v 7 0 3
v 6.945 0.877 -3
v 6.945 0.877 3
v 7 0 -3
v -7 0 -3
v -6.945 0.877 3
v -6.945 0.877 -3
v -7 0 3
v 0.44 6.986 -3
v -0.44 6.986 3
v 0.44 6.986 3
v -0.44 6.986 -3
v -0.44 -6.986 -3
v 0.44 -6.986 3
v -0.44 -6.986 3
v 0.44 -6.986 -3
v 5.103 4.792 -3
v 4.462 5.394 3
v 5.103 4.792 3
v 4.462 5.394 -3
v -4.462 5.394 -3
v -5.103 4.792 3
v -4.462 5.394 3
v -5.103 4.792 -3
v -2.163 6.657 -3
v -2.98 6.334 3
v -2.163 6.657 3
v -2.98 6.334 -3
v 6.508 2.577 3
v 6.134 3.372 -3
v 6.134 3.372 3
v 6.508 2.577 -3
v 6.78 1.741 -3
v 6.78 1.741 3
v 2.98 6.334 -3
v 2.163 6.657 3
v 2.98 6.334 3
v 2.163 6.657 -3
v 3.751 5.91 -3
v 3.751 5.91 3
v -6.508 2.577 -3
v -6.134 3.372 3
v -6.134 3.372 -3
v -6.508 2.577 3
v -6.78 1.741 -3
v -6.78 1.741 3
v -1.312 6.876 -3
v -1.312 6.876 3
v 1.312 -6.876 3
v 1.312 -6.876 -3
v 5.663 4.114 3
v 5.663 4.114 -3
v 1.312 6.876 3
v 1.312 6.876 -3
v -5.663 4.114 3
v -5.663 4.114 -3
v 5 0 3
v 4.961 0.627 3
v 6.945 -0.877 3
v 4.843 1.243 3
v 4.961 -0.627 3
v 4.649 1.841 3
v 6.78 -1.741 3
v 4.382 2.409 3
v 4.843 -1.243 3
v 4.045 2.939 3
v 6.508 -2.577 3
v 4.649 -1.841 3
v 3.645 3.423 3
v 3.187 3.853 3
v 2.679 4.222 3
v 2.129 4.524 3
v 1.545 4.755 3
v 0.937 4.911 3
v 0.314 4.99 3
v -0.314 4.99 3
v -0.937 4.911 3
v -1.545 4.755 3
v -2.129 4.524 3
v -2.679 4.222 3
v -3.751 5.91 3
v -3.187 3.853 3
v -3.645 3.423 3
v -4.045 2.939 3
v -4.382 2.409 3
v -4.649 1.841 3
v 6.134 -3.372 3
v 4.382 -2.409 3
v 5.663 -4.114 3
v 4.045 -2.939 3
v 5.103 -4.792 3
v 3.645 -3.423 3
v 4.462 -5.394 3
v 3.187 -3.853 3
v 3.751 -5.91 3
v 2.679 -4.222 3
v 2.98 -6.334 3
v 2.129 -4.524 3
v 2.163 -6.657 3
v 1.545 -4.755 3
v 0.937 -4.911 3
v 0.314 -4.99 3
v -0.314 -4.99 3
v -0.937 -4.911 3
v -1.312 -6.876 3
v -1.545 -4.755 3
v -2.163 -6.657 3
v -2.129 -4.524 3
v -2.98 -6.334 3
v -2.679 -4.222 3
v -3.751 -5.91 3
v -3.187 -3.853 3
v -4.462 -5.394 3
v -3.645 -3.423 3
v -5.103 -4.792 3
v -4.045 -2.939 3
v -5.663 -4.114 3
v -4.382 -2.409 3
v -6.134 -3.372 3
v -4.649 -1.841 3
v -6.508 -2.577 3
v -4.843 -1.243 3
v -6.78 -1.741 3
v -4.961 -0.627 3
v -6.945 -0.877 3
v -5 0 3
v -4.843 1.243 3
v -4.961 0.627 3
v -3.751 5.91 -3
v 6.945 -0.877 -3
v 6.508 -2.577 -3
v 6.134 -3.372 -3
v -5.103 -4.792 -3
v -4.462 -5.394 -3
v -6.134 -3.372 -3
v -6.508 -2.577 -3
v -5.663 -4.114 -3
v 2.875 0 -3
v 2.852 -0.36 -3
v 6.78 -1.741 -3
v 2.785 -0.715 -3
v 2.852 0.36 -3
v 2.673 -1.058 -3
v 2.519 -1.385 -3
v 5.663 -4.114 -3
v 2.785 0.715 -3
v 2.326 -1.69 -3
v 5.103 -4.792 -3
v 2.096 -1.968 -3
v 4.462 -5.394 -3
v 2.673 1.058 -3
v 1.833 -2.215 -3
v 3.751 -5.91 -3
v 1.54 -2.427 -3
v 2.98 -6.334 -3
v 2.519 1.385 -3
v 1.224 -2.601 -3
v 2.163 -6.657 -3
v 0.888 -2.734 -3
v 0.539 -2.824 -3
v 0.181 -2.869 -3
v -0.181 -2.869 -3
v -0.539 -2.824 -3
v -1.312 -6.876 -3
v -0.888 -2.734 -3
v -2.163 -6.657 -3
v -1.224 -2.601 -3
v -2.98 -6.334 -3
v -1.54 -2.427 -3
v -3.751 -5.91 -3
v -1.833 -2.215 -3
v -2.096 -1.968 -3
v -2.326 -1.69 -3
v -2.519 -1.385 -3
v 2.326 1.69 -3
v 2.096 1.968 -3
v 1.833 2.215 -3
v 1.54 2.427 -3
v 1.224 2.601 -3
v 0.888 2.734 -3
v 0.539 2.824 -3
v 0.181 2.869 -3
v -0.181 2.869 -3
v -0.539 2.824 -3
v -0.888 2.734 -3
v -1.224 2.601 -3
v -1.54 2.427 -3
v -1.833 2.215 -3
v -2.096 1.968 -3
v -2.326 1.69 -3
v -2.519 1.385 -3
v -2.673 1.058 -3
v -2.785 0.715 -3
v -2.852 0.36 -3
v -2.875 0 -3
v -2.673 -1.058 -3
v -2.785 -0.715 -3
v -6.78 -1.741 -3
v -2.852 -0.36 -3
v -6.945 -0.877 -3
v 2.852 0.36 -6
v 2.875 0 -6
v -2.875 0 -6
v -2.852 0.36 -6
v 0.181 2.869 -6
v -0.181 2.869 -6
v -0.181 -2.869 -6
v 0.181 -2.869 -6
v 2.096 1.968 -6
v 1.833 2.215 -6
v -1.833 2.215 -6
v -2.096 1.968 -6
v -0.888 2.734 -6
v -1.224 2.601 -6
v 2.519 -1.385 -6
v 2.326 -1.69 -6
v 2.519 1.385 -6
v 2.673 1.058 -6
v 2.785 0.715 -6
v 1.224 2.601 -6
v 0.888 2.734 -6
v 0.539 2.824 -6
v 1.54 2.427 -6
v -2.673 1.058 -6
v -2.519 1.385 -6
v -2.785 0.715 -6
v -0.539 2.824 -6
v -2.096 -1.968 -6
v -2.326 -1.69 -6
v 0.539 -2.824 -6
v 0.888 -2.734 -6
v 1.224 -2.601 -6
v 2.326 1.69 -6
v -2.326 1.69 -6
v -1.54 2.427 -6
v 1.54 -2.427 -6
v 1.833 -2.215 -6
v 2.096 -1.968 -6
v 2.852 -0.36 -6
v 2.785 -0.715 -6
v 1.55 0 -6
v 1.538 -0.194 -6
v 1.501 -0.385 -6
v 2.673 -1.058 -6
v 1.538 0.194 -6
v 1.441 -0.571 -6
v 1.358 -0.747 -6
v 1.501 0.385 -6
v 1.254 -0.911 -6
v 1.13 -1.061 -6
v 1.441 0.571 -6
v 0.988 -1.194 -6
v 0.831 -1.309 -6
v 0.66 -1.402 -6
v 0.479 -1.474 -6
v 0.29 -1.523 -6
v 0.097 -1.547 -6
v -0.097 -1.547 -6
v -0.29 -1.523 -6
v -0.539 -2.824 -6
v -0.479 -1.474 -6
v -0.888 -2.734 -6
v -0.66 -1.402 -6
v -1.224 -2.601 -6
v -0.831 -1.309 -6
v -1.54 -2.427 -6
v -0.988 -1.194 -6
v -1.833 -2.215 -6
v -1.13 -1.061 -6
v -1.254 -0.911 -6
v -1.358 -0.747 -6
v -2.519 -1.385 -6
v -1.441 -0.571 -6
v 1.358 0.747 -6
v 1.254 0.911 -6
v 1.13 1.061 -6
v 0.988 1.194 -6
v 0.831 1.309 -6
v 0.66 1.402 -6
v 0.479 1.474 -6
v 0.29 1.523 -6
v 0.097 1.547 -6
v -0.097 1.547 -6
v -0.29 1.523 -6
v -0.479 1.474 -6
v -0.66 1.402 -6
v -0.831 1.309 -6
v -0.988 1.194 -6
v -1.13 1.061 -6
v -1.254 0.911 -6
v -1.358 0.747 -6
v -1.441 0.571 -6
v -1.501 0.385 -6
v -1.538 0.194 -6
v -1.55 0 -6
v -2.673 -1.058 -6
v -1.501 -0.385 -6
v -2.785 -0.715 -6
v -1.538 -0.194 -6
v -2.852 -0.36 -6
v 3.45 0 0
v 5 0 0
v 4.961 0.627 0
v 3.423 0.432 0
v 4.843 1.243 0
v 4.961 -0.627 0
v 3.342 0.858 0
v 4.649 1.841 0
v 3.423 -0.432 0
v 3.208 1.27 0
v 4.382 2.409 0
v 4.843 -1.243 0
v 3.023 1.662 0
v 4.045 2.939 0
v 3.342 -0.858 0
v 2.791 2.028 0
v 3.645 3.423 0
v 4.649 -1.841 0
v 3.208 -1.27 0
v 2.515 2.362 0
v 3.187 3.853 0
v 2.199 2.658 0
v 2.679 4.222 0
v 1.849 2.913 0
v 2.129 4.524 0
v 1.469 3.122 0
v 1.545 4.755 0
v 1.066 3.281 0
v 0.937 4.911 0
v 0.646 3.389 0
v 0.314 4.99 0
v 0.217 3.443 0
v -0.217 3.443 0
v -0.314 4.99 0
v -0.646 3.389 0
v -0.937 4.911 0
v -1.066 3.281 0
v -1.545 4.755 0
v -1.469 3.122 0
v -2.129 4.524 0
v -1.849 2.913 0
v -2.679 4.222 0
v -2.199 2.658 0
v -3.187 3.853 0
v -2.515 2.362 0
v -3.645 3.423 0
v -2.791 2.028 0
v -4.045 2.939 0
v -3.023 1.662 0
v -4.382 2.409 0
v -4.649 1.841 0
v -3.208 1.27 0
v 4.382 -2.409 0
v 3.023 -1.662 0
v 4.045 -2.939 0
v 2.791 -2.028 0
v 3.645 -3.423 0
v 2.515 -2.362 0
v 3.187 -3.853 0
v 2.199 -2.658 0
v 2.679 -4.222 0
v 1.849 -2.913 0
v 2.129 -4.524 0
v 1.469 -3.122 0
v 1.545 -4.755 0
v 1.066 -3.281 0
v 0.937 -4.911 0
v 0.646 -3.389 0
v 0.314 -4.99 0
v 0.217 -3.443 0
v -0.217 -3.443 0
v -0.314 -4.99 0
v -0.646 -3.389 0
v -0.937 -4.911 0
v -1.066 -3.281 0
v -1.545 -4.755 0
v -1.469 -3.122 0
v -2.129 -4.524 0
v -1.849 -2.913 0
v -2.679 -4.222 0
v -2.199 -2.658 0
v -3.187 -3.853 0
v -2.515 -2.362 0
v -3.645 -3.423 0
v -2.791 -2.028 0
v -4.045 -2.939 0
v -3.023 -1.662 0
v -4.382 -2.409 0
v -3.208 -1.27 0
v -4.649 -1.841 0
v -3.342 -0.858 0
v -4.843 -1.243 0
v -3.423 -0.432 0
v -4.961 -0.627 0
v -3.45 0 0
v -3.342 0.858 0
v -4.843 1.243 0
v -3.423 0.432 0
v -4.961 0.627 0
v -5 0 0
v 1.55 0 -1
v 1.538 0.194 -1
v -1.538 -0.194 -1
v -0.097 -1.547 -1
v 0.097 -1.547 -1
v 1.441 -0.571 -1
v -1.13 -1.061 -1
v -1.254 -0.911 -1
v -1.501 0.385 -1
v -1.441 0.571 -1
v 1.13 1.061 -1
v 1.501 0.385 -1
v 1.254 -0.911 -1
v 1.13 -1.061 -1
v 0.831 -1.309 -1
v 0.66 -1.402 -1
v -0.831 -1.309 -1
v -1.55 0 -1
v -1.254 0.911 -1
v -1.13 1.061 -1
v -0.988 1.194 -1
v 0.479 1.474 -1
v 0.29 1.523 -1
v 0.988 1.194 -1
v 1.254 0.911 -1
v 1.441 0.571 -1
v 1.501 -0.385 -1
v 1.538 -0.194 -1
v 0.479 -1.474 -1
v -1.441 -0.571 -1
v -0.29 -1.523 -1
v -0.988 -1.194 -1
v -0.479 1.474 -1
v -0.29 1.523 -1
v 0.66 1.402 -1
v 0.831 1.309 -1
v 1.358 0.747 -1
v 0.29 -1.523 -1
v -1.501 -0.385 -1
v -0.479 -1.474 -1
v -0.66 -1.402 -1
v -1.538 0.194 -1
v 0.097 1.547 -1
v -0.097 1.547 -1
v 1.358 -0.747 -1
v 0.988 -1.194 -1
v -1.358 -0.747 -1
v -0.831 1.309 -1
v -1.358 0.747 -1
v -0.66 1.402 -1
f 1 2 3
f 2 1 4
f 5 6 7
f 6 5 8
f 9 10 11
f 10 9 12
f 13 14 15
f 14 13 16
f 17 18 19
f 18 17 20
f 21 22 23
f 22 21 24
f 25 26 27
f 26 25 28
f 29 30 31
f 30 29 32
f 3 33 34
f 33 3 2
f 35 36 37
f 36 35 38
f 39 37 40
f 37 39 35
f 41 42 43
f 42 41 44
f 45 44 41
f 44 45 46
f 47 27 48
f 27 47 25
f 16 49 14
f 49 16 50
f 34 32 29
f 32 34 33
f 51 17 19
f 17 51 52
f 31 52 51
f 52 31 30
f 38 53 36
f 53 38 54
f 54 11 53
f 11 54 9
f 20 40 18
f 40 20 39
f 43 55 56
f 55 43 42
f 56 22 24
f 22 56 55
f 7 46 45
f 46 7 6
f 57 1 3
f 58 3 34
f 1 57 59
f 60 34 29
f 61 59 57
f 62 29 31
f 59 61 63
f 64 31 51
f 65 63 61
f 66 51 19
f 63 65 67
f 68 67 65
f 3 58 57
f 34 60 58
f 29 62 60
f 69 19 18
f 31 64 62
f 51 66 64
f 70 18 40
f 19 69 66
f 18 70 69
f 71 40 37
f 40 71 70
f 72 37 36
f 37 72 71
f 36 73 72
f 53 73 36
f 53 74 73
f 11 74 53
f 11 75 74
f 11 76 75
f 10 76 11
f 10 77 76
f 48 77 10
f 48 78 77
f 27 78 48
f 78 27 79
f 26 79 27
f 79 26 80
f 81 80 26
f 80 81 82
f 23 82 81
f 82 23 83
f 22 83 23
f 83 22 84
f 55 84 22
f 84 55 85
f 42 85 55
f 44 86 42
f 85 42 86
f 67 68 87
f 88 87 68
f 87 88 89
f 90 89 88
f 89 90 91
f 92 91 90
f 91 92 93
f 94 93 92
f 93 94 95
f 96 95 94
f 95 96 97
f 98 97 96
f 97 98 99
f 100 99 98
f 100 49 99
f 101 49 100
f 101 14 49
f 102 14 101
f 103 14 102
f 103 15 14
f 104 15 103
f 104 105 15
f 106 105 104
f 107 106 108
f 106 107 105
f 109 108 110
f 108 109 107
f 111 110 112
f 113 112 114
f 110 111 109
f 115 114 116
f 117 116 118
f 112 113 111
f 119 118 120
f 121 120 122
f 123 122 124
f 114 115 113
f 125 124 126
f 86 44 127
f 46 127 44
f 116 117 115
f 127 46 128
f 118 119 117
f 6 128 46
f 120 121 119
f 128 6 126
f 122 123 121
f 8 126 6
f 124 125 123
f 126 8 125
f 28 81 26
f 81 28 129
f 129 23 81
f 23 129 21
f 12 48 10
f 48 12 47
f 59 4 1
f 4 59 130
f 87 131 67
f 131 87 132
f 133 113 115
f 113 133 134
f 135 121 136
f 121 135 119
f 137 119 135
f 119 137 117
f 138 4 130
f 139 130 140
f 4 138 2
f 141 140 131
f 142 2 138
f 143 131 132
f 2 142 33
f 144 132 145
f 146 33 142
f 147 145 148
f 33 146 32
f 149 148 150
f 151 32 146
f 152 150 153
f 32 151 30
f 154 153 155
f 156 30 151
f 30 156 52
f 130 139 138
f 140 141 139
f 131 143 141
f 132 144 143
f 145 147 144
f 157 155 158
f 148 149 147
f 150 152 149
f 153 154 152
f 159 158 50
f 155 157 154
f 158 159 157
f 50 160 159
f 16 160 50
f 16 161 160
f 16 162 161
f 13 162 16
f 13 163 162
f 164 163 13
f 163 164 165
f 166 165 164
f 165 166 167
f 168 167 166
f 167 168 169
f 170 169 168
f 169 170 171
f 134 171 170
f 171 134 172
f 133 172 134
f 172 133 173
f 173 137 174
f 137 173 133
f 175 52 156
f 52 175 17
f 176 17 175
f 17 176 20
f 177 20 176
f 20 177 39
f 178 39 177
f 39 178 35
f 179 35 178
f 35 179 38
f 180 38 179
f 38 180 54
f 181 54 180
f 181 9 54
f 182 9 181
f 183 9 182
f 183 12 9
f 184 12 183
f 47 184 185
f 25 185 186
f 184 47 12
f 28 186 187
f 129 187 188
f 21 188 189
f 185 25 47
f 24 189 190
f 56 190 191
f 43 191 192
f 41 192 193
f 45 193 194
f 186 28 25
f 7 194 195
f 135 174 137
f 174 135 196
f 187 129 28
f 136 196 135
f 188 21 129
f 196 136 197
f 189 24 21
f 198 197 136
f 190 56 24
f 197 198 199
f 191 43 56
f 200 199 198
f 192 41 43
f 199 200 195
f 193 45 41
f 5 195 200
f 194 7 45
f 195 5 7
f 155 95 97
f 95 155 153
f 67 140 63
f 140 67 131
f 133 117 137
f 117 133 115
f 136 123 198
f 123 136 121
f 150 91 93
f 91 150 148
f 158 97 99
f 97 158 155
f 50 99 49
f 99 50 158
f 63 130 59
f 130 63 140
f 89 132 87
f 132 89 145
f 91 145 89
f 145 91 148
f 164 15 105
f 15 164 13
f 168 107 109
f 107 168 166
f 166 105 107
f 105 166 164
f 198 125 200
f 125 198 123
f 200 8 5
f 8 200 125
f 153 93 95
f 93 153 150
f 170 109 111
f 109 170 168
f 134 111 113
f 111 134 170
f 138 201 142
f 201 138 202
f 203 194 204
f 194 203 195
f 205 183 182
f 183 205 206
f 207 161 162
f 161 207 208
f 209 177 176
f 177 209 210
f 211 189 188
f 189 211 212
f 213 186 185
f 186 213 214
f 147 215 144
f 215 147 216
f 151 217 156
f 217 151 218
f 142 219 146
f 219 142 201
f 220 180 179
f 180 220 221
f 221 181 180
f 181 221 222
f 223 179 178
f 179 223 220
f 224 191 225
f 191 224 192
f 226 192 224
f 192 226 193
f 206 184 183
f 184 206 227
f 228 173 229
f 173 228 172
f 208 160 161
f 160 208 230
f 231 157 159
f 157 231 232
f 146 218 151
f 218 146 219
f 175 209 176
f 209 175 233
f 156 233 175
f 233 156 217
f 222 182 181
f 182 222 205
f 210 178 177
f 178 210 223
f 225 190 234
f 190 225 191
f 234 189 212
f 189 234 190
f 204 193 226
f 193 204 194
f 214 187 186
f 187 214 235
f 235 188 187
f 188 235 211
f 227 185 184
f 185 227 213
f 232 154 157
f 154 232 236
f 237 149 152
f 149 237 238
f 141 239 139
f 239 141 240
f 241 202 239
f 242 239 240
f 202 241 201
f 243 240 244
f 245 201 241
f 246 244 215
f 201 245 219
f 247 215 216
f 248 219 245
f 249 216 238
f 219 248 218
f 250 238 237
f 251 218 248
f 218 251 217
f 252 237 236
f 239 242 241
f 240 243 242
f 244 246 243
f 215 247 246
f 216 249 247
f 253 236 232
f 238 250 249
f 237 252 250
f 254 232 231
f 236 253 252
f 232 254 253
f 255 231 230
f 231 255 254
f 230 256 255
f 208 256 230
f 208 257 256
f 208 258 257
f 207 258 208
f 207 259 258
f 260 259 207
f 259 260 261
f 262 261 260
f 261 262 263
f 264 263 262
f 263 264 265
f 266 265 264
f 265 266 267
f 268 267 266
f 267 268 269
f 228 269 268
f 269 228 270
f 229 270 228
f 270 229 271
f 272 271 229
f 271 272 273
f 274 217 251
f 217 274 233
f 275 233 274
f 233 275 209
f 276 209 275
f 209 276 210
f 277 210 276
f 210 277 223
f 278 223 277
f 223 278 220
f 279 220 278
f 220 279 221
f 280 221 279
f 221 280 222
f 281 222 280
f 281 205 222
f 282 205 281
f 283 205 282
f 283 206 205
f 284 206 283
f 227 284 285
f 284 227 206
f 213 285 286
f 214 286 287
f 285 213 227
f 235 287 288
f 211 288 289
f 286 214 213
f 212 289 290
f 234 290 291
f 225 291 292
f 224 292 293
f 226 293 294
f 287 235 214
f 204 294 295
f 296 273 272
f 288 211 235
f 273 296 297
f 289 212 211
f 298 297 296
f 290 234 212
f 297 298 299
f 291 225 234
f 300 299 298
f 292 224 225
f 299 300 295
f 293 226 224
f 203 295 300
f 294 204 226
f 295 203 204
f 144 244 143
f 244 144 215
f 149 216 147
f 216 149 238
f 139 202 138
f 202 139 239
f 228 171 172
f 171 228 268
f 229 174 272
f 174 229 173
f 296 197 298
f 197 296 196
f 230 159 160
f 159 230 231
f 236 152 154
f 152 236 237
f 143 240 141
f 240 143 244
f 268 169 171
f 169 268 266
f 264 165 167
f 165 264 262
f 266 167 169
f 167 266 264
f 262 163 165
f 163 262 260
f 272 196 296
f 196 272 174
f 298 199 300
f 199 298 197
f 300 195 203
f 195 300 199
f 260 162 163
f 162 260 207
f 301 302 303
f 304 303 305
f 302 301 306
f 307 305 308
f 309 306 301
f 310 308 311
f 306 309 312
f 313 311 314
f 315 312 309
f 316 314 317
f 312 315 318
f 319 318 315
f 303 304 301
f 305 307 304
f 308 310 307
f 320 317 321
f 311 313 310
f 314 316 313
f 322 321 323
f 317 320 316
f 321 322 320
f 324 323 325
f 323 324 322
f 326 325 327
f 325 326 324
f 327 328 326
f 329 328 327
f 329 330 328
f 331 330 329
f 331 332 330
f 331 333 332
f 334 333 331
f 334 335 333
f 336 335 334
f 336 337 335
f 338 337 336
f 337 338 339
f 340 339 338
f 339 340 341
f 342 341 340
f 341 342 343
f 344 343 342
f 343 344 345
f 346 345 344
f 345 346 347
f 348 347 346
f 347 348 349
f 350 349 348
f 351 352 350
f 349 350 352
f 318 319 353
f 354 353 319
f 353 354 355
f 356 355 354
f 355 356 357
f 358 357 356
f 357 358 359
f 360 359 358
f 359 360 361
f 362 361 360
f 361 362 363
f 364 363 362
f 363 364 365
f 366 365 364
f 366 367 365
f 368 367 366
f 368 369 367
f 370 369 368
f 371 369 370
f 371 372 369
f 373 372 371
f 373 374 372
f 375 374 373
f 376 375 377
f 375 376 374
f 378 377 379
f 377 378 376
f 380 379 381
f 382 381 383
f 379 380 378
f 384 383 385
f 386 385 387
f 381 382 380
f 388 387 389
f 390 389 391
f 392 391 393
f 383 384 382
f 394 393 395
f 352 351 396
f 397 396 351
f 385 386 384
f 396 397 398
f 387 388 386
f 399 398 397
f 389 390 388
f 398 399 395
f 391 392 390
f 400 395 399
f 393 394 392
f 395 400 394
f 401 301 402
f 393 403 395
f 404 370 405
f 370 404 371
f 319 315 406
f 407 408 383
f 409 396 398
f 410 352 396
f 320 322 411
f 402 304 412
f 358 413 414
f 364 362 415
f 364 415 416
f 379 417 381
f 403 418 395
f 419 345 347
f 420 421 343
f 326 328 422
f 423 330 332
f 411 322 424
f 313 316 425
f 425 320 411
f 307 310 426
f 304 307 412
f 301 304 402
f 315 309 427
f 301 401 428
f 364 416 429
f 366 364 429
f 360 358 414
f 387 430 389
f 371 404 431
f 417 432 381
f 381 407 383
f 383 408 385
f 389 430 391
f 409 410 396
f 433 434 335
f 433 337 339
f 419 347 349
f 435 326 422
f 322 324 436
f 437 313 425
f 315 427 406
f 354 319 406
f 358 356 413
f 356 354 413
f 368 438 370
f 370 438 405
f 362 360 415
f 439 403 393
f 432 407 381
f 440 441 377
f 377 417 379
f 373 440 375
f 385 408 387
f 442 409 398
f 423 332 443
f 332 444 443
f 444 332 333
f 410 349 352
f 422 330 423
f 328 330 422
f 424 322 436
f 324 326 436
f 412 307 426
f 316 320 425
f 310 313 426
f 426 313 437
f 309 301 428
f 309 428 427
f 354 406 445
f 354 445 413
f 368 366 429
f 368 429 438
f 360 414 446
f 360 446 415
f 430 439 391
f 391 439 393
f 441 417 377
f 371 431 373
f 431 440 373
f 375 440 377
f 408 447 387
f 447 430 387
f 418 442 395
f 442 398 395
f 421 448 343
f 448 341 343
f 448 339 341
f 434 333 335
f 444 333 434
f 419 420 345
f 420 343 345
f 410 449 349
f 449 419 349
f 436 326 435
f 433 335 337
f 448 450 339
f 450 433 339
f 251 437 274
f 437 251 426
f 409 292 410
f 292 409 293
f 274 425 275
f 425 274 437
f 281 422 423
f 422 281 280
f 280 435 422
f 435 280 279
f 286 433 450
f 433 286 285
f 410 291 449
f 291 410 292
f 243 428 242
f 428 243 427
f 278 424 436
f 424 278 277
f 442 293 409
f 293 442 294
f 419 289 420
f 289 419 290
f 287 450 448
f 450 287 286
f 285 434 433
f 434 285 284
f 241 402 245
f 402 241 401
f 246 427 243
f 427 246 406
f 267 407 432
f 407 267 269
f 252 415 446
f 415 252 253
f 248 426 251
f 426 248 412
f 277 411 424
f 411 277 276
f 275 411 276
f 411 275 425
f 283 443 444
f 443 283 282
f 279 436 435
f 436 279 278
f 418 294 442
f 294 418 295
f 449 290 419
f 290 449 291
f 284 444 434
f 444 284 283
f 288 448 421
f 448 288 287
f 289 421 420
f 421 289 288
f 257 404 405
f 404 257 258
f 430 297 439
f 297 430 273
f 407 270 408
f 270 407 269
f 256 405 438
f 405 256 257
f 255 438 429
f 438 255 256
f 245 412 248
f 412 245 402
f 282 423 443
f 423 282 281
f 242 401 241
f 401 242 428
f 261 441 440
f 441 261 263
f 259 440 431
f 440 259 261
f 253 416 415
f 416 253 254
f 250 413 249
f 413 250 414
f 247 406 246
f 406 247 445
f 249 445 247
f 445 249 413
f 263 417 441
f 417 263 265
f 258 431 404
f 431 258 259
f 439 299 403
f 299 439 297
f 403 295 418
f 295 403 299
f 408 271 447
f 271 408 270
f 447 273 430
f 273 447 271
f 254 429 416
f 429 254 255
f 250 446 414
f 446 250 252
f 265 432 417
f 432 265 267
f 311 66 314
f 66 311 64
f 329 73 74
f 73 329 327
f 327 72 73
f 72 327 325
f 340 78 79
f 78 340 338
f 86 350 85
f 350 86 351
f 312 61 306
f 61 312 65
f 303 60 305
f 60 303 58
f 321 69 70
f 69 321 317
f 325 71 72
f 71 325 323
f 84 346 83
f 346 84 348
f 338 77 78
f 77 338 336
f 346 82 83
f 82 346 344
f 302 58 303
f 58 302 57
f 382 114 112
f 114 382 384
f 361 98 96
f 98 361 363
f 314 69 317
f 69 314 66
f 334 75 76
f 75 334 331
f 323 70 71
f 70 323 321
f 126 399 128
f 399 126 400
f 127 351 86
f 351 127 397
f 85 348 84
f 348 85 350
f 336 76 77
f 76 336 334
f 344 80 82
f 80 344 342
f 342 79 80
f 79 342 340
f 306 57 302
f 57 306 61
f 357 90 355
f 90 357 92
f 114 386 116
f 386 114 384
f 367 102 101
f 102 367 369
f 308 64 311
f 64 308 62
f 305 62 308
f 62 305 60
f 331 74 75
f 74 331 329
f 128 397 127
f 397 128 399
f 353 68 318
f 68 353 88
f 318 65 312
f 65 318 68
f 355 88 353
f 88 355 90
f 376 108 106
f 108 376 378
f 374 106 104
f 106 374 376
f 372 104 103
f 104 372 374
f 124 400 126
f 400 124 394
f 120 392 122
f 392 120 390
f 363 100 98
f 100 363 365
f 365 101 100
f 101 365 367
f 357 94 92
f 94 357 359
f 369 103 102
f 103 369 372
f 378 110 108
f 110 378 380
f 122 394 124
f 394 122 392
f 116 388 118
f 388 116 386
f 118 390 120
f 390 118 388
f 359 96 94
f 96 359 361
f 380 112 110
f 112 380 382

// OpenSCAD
$fn = 50;


difference() {
	union() {
		translate(v = [0, 0, -3.0000000000]) {
			cylinder(h = 6, r = 7.0000000000);
		}
		#translate(v = [0, 0, -6.0000000000]) {
			cylinder(h = 6, r = 2.8750000000);
		}
	}
	union() {
		translate(v = [0, 0, 0]) {
			rotate(a = [0, 0, 0]) {
				difference() {
					union() {
						translate(v = [0, 0, -6.0000000000]) {
							cylinder(h = 6, r = 1.2500000000);
						}
						translate(v = [0, 0, -1.0000000000]) {
							cylinder(h = 1.0000000000, r1 = 1.5500000000, r2 = 3.4500000000);
						}
						translate(v = [0, 0, -6.0000000000]) {
							cylinder(h = 6, r = 1.5500000000);
						}
						translate(v = [0, 0, -6.0000000000]) {
							cylinder(h = 6, r = 1.2500000000);
						}
					}
					union();
				}
			}
		}
		#cylinder(h = 3, r = 5.0000000000);
	}
}
